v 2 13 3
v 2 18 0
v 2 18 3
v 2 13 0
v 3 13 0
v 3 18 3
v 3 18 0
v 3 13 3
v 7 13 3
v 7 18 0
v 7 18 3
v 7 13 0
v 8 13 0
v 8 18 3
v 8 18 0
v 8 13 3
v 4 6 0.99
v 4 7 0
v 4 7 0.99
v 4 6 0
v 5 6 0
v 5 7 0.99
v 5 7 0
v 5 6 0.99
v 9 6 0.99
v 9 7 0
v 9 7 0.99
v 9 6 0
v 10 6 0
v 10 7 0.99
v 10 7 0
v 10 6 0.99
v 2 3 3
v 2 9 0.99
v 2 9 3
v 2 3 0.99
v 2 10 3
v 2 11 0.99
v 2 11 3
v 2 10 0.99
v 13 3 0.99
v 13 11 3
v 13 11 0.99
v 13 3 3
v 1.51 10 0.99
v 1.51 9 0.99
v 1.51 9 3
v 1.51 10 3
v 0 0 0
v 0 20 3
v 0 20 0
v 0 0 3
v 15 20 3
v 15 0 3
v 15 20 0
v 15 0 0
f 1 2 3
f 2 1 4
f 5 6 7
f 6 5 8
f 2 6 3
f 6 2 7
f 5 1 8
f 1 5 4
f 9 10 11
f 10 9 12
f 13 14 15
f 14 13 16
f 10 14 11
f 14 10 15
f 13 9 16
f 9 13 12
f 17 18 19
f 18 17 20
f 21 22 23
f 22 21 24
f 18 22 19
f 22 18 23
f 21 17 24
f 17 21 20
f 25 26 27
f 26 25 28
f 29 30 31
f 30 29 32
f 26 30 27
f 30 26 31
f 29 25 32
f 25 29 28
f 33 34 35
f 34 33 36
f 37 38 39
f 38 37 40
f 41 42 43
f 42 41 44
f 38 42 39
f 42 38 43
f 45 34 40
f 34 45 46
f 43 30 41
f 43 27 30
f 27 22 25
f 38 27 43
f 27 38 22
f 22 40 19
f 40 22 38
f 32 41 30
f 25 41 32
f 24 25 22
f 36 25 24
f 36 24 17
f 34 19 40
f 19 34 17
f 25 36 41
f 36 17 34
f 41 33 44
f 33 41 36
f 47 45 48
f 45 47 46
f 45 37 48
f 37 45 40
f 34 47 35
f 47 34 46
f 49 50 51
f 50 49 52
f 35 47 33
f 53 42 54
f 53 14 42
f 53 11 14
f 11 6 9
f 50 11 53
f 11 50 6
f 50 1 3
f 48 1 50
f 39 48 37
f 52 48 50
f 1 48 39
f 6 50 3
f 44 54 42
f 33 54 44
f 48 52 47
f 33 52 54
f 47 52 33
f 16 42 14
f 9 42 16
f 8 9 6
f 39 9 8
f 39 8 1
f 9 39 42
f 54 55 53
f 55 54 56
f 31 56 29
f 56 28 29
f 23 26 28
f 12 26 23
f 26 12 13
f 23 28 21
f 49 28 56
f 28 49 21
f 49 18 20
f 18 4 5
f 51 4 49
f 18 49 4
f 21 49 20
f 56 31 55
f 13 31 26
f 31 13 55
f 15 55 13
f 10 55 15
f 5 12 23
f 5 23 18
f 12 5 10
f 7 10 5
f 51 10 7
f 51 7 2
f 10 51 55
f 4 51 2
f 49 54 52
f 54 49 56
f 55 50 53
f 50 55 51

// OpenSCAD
box_x = 200;
box_y = 140;
box_z = 40;

module box() {
  translate([box_x / 2, box_y / 2, box_z / 2])
    difference() {
      cube([box_x, box_y, box_z], center=true);
      translate([0, 0, 2])
        cube([box_x - 4, box_y - 4, box_z], center=true);
    }
}

module switch() {
  x = 14;
  y = 9;
  translate([box_x / 2, box_y / 2, box_z / 2])
  difference() {
    cube([x + 2, y + 2, box_z], center=true);
    translate([0, 0, 10]) {
      cube([x, y, box_z + 1], center=true);
      translate([2,0,0])
        cube([x, y - 4, box_z + 1], center=true);
    }
  }
}

plug_x = 16;
plug_y = 32;
plug_z = 11;
module plug() {
  difference() {
    cube([plug_x, plug_y, plug_z-0.01], center=true);
    // temporário
    translate([0, 15, 2])
      cube([8.01, 2.01, plug_z], center=true);
    translate([0, 10.5, 2])
      cube([10.01, 7.01, plug_z], center=true);
    translate([0, -4, 1])
      cube([14.01, 22.01, plug_z], center=true);
    translate([0, -15, 1])
      cube([11.01, 2.01, plug_z], center=true);
  }
}

switch_board_x = 15;
switch_board_y = 20;
switch_board_z = 3;
module switch_board() {
  difference() {
    cube([switch_board_x, switch_board_y, switch_board_z]);
    translate([0, 13, -0.01]) {
      translate([2, 0, 0])
        cube([1, 5, switch_board_z + 0.02]);
      translate([7, 0, 0])
        cube([1, 5, switch_board_z + 0.02]);
    }
    translate([0, 6, -0.01]) {
      translate([4, 0, 0])
        cube([1, 1, switch_board_z + 0.02]);
      translate([9, 0, 0])
        cube([1, 1, switch_board_z + 0.02]);
      translate([2, -3, 1])
        cube([11, 8, switch_board_z + 0.02]);
      translate([1.51, 3, 1])
          cube([0.5, 1, 12]);
    }

  }
}
/*box();
translate([0,110,0]) {
  translate([33, 0, 0])
    switch();
  translate([66, 0, 0])
    switch();
  translate([110, 0, 0])
    switch();
  translate([140, 0, 0])
    switch();
  translate([170, 0, 0])
    switch();
}
translate([33, 105, (box_z - plug_z) / 2])
  plug();*/

/*plug();*/
switch_board();
